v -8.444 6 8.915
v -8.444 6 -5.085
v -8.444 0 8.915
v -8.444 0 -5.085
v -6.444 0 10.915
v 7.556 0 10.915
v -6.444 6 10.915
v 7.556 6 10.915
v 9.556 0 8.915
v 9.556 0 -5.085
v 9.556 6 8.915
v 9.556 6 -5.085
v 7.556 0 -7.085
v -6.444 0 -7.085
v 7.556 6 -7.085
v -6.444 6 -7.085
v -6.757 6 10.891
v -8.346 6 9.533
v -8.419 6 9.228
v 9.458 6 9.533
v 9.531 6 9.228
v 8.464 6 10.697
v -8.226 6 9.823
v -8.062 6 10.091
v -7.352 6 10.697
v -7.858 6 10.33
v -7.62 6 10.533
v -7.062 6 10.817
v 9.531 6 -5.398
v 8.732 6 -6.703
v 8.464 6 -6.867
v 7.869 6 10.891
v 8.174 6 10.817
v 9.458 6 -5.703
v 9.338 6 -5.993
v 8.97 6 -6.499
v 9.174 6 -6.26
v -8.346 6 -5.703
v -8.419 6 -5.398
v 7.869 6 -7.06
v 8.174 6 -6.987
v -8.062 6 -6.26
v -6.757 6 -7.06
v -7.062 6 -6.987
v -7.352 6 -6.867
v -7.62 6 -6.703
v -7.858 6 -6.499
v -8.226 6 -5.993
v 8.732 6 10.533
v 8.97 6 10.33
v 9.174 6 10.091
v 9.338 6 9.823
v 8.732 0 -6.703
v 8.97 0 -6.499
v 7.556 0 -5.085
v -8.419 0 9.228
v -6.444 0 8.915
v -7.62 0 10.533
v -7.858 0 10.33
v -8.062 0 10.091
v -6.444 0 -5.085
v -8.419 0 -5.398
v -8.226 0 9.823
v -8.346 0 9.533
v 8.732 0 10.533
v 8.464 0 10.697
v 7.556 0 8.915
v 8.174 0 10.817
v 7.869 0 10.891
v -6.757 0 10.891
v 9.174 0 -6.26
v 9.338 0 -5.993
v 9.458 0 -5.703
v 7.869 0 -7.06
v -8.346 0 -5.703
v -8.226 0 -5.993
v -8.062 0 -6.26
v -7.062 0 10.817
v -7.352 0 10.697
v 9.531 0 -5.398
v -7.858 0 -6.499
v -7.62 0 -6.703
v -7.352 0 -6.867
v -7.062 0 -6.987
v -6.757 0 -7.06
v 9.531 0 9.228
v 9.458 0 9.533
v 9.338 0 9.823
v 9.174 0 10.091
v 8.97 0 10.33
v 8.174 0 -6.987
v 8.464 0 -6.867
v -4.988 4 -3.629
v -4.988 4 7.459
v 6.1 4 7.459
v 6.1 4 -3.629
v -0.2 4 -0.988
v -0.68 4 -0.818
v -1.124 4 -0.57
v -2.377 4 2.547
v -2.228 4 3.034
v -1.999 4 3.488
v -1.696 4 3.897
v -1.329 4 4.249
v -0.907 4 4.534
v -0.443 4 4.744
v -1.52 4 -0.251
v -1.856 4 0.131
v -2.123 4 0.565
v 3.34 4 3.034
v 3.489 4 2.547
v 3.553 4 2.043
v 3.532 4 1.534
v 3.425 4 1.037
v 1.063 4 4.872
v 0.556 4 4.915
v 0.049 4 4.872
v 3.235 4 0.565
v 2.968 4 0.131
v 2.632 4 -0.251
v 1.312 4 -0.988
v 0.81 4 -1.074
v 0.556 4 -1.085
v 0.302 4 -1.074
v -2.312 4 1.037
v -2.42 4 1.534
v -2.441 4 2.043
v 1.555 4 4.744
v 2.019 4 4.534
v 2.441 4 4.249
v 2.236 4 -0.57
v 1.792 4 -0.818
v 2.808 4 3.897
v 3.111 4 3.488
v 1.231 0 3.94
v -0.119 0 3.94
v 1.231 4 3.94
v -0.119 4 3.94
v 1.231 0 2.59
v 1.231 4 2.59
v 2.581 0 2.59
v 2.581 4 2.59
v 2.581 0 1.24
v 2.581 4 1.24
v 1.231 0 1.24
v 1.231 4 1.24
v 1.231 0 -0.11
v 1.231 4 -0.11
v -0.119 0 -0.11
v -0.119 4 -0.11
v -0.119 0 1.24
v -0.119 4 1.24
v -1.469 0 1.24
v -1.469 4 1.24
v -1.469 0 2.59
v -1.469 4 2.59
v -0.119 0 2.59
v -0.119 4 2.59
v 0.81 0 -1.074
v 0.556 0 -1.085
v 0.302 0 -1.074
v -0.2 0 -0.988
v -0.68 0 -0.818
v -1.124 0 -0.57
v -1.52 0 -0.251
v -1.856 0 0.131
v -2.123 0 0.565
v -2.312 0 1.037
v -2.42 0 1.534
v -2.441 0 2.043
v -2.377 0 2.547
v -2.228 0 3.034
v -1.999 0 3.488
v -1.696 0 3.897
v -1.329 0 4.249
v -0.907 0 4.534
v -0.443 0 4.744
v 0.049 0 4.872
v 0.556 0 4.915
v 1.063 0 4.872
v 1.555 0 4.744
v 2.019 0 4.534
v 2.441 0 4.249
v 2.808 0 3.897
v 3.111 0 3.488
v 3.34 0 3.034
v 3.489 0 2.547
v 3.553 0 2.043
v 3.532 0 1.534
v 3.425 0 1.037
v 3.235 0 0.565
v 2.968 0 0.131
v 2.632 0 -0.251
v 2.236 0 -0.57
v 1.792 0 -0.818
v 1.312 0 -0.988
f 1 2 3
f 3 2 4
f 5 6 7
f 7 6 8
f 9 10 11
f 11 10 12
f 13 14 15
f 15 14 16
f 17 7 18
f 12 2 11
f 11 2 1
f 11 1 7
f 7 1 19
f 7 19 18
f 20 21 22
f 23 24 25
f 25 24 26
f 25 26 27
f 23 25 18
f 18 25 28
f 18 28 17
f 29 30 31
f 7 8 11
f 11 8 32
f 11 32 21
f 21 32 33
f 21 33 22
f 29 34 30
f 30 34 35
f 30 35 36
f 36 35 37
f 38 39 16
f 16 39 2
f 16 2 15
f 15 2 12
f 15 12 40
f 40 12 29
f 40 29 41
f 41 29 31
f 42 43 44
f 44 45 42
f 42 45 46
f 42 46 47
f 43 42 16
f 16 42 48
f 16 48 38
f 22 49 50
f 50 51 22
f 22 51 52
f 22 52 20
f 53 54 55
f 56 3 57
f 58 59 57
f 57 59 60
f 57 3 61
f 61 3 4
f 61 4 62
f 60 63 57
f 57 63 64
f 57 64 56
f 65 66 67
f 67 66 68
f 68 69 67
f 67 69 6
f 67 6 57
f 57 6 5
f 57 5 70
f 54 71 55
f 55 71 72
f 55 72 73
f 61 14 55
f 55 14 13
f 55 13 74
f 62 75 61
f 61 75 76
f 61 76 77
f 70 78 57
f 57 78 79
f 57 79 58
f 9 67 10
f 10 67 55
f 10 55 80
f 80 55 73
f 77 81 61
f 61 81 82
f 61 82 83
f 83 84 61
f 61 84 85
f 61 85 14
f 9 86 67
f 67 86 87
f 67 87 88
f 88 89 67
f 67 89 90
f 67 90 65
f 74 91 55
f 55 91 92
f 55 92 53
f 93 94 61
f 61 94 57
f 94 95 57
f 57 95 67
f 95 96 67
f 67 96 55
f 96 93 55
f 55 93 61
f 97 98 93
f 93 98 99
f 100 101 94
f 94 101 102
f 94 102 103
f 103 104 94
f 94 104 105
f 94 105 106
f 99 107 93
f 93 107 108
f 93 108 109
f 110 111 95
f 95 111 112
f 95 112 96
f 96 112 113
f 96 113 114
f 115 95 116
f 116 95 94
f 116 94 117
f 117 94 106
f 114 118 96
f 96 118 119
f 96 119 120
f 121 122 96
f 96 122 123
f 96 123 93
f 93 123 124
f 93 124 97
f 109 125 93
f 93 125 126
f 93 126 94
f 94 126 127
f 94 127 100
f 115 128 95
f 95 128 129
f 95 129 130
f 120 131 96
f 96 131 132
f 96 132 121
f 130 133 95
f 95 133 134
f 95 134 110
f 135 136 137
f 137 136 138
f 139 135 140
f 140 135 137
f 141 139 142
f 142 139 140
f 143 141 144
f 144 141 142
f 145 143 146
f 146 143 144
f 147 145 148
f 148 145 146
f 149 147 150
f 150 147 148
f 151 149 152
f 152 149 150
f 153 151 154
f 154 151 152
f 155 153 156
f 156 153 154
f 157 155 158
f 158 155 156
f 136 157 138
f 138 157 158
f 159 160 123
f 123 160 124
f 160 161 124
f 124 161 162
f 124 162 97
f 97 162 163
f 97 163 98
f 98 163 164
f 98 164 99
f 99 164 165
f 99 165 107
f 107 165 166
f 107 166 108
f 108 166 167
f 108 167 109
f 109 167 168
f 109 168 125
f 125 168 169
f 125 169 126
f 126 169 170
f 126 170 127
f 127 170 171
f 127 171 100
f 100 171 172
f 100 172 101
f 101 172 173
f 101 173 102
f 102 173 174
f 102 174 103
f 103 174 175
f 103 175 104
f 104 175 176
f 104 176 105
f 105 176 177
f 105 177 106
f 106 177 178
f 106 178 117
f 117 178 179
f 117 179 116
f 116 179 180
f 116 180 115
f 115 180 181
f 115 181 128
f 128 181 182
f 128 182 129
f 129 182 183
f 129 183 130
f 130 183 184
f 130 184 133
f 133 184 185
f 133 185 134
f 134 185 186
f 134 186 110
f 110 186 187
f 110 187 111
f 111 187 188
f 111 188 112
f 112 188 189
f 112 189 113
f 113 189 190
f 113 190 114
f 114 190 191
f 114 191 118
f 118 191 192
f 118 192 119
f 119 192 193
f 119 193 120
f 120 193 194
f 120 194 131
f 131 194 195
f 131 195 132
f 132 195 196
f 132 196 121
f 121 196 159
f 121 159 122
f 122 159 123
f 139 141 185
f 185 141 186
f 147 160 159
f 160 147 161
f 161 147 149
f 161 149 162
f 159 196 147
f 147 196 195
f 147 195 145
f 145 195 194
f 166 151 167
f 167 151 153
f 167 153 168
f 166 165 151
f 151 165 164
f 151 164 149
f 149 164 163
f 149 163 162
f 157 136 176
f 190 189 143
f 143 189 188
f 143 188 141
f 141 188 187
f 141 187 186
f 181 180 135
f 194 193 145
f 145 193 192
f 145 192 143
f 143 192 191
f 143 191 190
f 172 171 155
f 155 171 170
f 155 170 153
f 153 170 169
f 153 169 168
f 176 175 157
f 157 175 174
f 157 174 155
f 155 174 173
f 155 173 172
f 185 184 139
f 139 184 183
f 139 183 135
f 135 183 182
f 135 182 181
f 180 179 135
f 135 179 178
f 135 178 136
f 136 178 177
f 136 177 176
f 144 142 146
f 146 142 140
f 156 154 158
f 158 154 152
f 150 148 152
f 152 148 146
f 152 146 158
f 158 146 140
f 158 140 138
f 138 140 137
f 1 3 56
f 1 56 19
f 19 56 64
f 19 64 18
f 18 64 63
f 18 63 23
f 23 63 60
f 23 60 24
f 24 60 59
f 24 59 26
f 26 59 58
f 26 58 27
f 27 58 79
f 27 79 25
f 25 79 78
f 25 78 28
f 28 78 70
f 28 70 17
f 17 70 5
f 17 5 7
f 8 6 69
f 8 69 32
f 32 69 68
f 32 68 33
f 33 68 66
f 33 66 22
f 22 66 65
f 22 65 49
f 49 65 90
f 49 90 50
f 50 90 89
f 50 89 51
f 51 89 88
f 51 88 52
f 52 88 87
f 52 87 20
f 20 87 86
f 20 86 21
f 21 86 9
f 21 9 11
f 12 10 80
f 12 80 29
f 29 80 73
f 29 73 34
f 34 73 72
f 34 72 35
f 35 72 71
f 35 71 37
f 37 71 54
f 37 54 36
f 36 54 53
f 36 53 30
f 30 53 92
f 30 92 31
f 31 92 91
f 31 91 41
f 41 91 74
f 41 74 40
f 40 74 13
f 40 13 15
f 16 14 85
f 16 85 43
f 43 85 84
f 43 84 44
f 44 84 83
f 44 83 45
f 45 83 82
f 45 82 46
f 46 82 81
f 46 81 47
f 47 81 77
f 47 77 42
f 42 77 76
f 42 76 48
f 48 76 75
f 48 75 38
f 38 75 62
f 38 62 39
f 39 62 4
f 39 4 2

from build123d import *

# Parameters (mm, degrees)
SKETCH1_W           = 18
SKETCH1_H           = 18
BOSS_EXTRUDE1_DEPTH = 6
SKETCH2_W           = 14
SKETCH2_H           = 14
CUT_EXTRUDE1_DEPTH  = 4
CUT_EXTRUDE1_DRAFT  = -20
SKETCH3_R           = 3
BOSS_EXTRUDE2_DEPTH = 4
FILLET1_R           = 2


with BuildPart() as part:
    # Sketch1 → Boss-Extrude1 (new body)
    with BuildSketch(Plane(origin=(0, 0, 0), x_dir=(1, 0, 0), z_dir=(0, 1, 0))):
        with Locations((0.556064073, -1.915331808)):
            Rectangle(SKETCH1_W, SKETCH1_H)
    extrude(amount=BOSS_EXTRUDE1_DEPTH)


with BuildPart() as cut_extrude1_tool:
    # Sketch2 → Cut-Extrude1 (with draft: the straight prism first)
    with BuildSketch(Plane.XZ):
        with Locations((0.556064073, 1.915331808)):
            Rectangle(SKETCH2_W, SKETCH2_H)
    extrude(amount=-CUT_EXTRUDE1_DEPTH)
    # Cut-Extrude1: the draft: its side faces are tilted about the plane it starts from
    cut_extrude1_sides = [cut_extrude1_tool.faces().sort_by_distance(p)[0] for p in [
        (-6.443935927, 2, 1.915331808),
        (0.556064073, 2, -5.084668192),
        (7.556064073, 2, 1.915331808),
        (0.556064073, 2, 8.915331808),
    ]]
    draft(cut_extrude1_sides, Plane.XZ, CUT_EXTRUDE1_DRAFT)


with BuildPart() as part_1:
    add(part.part)

    # Cut-Extrude1: cut by cut_extrude1_tool
    add(cut_extrude1_tool.part, mode=Mode.SUBTRACT)

    # Sketch3 → Boss-Extrude2 (add)
    with BuildSketch(Plane.XZ.offset(-4)):
        with Locations(Location((0.556064073, 1.915331808, 0), (0, 0, 270))):
            Circle(SKETCH3_R)
        Polygon((-0.118935927, 1.240331808), (-1.468935927, 1.240331808), (-1.468935927, 2.590331808), (-0.118935927, 2.590331808), (-0.118935927, 3.940331808), (1.231064073, 3.940331808), (1.231064073, 2.590331808), (2.581064073, 2.590331808), (2.581064073, 1.240331808), (1.231064073, 1.240331808), (1.231064073, -0.109668192), (-0.118935927, -0.109668192), align=None, mode=Mode.SUBTRACT)
    extrude(amount=BOSS_EXTRUDE2_DEPTH)

    # Fillet1
    fillet1_edges = [part_1.edges().sort_by_distance(p)[0] for p in [
        (-8.443935927, 3, -7.084668192),
        (9.556064073, 3, -7.084668192),
        (9.556064073, 3, 10.915331808),
        (-8.443935927, 3, 10.915331808),
    ]]
    fillet(fillet1_edges, radius=FILLET1_R)


solid = part_1.part
